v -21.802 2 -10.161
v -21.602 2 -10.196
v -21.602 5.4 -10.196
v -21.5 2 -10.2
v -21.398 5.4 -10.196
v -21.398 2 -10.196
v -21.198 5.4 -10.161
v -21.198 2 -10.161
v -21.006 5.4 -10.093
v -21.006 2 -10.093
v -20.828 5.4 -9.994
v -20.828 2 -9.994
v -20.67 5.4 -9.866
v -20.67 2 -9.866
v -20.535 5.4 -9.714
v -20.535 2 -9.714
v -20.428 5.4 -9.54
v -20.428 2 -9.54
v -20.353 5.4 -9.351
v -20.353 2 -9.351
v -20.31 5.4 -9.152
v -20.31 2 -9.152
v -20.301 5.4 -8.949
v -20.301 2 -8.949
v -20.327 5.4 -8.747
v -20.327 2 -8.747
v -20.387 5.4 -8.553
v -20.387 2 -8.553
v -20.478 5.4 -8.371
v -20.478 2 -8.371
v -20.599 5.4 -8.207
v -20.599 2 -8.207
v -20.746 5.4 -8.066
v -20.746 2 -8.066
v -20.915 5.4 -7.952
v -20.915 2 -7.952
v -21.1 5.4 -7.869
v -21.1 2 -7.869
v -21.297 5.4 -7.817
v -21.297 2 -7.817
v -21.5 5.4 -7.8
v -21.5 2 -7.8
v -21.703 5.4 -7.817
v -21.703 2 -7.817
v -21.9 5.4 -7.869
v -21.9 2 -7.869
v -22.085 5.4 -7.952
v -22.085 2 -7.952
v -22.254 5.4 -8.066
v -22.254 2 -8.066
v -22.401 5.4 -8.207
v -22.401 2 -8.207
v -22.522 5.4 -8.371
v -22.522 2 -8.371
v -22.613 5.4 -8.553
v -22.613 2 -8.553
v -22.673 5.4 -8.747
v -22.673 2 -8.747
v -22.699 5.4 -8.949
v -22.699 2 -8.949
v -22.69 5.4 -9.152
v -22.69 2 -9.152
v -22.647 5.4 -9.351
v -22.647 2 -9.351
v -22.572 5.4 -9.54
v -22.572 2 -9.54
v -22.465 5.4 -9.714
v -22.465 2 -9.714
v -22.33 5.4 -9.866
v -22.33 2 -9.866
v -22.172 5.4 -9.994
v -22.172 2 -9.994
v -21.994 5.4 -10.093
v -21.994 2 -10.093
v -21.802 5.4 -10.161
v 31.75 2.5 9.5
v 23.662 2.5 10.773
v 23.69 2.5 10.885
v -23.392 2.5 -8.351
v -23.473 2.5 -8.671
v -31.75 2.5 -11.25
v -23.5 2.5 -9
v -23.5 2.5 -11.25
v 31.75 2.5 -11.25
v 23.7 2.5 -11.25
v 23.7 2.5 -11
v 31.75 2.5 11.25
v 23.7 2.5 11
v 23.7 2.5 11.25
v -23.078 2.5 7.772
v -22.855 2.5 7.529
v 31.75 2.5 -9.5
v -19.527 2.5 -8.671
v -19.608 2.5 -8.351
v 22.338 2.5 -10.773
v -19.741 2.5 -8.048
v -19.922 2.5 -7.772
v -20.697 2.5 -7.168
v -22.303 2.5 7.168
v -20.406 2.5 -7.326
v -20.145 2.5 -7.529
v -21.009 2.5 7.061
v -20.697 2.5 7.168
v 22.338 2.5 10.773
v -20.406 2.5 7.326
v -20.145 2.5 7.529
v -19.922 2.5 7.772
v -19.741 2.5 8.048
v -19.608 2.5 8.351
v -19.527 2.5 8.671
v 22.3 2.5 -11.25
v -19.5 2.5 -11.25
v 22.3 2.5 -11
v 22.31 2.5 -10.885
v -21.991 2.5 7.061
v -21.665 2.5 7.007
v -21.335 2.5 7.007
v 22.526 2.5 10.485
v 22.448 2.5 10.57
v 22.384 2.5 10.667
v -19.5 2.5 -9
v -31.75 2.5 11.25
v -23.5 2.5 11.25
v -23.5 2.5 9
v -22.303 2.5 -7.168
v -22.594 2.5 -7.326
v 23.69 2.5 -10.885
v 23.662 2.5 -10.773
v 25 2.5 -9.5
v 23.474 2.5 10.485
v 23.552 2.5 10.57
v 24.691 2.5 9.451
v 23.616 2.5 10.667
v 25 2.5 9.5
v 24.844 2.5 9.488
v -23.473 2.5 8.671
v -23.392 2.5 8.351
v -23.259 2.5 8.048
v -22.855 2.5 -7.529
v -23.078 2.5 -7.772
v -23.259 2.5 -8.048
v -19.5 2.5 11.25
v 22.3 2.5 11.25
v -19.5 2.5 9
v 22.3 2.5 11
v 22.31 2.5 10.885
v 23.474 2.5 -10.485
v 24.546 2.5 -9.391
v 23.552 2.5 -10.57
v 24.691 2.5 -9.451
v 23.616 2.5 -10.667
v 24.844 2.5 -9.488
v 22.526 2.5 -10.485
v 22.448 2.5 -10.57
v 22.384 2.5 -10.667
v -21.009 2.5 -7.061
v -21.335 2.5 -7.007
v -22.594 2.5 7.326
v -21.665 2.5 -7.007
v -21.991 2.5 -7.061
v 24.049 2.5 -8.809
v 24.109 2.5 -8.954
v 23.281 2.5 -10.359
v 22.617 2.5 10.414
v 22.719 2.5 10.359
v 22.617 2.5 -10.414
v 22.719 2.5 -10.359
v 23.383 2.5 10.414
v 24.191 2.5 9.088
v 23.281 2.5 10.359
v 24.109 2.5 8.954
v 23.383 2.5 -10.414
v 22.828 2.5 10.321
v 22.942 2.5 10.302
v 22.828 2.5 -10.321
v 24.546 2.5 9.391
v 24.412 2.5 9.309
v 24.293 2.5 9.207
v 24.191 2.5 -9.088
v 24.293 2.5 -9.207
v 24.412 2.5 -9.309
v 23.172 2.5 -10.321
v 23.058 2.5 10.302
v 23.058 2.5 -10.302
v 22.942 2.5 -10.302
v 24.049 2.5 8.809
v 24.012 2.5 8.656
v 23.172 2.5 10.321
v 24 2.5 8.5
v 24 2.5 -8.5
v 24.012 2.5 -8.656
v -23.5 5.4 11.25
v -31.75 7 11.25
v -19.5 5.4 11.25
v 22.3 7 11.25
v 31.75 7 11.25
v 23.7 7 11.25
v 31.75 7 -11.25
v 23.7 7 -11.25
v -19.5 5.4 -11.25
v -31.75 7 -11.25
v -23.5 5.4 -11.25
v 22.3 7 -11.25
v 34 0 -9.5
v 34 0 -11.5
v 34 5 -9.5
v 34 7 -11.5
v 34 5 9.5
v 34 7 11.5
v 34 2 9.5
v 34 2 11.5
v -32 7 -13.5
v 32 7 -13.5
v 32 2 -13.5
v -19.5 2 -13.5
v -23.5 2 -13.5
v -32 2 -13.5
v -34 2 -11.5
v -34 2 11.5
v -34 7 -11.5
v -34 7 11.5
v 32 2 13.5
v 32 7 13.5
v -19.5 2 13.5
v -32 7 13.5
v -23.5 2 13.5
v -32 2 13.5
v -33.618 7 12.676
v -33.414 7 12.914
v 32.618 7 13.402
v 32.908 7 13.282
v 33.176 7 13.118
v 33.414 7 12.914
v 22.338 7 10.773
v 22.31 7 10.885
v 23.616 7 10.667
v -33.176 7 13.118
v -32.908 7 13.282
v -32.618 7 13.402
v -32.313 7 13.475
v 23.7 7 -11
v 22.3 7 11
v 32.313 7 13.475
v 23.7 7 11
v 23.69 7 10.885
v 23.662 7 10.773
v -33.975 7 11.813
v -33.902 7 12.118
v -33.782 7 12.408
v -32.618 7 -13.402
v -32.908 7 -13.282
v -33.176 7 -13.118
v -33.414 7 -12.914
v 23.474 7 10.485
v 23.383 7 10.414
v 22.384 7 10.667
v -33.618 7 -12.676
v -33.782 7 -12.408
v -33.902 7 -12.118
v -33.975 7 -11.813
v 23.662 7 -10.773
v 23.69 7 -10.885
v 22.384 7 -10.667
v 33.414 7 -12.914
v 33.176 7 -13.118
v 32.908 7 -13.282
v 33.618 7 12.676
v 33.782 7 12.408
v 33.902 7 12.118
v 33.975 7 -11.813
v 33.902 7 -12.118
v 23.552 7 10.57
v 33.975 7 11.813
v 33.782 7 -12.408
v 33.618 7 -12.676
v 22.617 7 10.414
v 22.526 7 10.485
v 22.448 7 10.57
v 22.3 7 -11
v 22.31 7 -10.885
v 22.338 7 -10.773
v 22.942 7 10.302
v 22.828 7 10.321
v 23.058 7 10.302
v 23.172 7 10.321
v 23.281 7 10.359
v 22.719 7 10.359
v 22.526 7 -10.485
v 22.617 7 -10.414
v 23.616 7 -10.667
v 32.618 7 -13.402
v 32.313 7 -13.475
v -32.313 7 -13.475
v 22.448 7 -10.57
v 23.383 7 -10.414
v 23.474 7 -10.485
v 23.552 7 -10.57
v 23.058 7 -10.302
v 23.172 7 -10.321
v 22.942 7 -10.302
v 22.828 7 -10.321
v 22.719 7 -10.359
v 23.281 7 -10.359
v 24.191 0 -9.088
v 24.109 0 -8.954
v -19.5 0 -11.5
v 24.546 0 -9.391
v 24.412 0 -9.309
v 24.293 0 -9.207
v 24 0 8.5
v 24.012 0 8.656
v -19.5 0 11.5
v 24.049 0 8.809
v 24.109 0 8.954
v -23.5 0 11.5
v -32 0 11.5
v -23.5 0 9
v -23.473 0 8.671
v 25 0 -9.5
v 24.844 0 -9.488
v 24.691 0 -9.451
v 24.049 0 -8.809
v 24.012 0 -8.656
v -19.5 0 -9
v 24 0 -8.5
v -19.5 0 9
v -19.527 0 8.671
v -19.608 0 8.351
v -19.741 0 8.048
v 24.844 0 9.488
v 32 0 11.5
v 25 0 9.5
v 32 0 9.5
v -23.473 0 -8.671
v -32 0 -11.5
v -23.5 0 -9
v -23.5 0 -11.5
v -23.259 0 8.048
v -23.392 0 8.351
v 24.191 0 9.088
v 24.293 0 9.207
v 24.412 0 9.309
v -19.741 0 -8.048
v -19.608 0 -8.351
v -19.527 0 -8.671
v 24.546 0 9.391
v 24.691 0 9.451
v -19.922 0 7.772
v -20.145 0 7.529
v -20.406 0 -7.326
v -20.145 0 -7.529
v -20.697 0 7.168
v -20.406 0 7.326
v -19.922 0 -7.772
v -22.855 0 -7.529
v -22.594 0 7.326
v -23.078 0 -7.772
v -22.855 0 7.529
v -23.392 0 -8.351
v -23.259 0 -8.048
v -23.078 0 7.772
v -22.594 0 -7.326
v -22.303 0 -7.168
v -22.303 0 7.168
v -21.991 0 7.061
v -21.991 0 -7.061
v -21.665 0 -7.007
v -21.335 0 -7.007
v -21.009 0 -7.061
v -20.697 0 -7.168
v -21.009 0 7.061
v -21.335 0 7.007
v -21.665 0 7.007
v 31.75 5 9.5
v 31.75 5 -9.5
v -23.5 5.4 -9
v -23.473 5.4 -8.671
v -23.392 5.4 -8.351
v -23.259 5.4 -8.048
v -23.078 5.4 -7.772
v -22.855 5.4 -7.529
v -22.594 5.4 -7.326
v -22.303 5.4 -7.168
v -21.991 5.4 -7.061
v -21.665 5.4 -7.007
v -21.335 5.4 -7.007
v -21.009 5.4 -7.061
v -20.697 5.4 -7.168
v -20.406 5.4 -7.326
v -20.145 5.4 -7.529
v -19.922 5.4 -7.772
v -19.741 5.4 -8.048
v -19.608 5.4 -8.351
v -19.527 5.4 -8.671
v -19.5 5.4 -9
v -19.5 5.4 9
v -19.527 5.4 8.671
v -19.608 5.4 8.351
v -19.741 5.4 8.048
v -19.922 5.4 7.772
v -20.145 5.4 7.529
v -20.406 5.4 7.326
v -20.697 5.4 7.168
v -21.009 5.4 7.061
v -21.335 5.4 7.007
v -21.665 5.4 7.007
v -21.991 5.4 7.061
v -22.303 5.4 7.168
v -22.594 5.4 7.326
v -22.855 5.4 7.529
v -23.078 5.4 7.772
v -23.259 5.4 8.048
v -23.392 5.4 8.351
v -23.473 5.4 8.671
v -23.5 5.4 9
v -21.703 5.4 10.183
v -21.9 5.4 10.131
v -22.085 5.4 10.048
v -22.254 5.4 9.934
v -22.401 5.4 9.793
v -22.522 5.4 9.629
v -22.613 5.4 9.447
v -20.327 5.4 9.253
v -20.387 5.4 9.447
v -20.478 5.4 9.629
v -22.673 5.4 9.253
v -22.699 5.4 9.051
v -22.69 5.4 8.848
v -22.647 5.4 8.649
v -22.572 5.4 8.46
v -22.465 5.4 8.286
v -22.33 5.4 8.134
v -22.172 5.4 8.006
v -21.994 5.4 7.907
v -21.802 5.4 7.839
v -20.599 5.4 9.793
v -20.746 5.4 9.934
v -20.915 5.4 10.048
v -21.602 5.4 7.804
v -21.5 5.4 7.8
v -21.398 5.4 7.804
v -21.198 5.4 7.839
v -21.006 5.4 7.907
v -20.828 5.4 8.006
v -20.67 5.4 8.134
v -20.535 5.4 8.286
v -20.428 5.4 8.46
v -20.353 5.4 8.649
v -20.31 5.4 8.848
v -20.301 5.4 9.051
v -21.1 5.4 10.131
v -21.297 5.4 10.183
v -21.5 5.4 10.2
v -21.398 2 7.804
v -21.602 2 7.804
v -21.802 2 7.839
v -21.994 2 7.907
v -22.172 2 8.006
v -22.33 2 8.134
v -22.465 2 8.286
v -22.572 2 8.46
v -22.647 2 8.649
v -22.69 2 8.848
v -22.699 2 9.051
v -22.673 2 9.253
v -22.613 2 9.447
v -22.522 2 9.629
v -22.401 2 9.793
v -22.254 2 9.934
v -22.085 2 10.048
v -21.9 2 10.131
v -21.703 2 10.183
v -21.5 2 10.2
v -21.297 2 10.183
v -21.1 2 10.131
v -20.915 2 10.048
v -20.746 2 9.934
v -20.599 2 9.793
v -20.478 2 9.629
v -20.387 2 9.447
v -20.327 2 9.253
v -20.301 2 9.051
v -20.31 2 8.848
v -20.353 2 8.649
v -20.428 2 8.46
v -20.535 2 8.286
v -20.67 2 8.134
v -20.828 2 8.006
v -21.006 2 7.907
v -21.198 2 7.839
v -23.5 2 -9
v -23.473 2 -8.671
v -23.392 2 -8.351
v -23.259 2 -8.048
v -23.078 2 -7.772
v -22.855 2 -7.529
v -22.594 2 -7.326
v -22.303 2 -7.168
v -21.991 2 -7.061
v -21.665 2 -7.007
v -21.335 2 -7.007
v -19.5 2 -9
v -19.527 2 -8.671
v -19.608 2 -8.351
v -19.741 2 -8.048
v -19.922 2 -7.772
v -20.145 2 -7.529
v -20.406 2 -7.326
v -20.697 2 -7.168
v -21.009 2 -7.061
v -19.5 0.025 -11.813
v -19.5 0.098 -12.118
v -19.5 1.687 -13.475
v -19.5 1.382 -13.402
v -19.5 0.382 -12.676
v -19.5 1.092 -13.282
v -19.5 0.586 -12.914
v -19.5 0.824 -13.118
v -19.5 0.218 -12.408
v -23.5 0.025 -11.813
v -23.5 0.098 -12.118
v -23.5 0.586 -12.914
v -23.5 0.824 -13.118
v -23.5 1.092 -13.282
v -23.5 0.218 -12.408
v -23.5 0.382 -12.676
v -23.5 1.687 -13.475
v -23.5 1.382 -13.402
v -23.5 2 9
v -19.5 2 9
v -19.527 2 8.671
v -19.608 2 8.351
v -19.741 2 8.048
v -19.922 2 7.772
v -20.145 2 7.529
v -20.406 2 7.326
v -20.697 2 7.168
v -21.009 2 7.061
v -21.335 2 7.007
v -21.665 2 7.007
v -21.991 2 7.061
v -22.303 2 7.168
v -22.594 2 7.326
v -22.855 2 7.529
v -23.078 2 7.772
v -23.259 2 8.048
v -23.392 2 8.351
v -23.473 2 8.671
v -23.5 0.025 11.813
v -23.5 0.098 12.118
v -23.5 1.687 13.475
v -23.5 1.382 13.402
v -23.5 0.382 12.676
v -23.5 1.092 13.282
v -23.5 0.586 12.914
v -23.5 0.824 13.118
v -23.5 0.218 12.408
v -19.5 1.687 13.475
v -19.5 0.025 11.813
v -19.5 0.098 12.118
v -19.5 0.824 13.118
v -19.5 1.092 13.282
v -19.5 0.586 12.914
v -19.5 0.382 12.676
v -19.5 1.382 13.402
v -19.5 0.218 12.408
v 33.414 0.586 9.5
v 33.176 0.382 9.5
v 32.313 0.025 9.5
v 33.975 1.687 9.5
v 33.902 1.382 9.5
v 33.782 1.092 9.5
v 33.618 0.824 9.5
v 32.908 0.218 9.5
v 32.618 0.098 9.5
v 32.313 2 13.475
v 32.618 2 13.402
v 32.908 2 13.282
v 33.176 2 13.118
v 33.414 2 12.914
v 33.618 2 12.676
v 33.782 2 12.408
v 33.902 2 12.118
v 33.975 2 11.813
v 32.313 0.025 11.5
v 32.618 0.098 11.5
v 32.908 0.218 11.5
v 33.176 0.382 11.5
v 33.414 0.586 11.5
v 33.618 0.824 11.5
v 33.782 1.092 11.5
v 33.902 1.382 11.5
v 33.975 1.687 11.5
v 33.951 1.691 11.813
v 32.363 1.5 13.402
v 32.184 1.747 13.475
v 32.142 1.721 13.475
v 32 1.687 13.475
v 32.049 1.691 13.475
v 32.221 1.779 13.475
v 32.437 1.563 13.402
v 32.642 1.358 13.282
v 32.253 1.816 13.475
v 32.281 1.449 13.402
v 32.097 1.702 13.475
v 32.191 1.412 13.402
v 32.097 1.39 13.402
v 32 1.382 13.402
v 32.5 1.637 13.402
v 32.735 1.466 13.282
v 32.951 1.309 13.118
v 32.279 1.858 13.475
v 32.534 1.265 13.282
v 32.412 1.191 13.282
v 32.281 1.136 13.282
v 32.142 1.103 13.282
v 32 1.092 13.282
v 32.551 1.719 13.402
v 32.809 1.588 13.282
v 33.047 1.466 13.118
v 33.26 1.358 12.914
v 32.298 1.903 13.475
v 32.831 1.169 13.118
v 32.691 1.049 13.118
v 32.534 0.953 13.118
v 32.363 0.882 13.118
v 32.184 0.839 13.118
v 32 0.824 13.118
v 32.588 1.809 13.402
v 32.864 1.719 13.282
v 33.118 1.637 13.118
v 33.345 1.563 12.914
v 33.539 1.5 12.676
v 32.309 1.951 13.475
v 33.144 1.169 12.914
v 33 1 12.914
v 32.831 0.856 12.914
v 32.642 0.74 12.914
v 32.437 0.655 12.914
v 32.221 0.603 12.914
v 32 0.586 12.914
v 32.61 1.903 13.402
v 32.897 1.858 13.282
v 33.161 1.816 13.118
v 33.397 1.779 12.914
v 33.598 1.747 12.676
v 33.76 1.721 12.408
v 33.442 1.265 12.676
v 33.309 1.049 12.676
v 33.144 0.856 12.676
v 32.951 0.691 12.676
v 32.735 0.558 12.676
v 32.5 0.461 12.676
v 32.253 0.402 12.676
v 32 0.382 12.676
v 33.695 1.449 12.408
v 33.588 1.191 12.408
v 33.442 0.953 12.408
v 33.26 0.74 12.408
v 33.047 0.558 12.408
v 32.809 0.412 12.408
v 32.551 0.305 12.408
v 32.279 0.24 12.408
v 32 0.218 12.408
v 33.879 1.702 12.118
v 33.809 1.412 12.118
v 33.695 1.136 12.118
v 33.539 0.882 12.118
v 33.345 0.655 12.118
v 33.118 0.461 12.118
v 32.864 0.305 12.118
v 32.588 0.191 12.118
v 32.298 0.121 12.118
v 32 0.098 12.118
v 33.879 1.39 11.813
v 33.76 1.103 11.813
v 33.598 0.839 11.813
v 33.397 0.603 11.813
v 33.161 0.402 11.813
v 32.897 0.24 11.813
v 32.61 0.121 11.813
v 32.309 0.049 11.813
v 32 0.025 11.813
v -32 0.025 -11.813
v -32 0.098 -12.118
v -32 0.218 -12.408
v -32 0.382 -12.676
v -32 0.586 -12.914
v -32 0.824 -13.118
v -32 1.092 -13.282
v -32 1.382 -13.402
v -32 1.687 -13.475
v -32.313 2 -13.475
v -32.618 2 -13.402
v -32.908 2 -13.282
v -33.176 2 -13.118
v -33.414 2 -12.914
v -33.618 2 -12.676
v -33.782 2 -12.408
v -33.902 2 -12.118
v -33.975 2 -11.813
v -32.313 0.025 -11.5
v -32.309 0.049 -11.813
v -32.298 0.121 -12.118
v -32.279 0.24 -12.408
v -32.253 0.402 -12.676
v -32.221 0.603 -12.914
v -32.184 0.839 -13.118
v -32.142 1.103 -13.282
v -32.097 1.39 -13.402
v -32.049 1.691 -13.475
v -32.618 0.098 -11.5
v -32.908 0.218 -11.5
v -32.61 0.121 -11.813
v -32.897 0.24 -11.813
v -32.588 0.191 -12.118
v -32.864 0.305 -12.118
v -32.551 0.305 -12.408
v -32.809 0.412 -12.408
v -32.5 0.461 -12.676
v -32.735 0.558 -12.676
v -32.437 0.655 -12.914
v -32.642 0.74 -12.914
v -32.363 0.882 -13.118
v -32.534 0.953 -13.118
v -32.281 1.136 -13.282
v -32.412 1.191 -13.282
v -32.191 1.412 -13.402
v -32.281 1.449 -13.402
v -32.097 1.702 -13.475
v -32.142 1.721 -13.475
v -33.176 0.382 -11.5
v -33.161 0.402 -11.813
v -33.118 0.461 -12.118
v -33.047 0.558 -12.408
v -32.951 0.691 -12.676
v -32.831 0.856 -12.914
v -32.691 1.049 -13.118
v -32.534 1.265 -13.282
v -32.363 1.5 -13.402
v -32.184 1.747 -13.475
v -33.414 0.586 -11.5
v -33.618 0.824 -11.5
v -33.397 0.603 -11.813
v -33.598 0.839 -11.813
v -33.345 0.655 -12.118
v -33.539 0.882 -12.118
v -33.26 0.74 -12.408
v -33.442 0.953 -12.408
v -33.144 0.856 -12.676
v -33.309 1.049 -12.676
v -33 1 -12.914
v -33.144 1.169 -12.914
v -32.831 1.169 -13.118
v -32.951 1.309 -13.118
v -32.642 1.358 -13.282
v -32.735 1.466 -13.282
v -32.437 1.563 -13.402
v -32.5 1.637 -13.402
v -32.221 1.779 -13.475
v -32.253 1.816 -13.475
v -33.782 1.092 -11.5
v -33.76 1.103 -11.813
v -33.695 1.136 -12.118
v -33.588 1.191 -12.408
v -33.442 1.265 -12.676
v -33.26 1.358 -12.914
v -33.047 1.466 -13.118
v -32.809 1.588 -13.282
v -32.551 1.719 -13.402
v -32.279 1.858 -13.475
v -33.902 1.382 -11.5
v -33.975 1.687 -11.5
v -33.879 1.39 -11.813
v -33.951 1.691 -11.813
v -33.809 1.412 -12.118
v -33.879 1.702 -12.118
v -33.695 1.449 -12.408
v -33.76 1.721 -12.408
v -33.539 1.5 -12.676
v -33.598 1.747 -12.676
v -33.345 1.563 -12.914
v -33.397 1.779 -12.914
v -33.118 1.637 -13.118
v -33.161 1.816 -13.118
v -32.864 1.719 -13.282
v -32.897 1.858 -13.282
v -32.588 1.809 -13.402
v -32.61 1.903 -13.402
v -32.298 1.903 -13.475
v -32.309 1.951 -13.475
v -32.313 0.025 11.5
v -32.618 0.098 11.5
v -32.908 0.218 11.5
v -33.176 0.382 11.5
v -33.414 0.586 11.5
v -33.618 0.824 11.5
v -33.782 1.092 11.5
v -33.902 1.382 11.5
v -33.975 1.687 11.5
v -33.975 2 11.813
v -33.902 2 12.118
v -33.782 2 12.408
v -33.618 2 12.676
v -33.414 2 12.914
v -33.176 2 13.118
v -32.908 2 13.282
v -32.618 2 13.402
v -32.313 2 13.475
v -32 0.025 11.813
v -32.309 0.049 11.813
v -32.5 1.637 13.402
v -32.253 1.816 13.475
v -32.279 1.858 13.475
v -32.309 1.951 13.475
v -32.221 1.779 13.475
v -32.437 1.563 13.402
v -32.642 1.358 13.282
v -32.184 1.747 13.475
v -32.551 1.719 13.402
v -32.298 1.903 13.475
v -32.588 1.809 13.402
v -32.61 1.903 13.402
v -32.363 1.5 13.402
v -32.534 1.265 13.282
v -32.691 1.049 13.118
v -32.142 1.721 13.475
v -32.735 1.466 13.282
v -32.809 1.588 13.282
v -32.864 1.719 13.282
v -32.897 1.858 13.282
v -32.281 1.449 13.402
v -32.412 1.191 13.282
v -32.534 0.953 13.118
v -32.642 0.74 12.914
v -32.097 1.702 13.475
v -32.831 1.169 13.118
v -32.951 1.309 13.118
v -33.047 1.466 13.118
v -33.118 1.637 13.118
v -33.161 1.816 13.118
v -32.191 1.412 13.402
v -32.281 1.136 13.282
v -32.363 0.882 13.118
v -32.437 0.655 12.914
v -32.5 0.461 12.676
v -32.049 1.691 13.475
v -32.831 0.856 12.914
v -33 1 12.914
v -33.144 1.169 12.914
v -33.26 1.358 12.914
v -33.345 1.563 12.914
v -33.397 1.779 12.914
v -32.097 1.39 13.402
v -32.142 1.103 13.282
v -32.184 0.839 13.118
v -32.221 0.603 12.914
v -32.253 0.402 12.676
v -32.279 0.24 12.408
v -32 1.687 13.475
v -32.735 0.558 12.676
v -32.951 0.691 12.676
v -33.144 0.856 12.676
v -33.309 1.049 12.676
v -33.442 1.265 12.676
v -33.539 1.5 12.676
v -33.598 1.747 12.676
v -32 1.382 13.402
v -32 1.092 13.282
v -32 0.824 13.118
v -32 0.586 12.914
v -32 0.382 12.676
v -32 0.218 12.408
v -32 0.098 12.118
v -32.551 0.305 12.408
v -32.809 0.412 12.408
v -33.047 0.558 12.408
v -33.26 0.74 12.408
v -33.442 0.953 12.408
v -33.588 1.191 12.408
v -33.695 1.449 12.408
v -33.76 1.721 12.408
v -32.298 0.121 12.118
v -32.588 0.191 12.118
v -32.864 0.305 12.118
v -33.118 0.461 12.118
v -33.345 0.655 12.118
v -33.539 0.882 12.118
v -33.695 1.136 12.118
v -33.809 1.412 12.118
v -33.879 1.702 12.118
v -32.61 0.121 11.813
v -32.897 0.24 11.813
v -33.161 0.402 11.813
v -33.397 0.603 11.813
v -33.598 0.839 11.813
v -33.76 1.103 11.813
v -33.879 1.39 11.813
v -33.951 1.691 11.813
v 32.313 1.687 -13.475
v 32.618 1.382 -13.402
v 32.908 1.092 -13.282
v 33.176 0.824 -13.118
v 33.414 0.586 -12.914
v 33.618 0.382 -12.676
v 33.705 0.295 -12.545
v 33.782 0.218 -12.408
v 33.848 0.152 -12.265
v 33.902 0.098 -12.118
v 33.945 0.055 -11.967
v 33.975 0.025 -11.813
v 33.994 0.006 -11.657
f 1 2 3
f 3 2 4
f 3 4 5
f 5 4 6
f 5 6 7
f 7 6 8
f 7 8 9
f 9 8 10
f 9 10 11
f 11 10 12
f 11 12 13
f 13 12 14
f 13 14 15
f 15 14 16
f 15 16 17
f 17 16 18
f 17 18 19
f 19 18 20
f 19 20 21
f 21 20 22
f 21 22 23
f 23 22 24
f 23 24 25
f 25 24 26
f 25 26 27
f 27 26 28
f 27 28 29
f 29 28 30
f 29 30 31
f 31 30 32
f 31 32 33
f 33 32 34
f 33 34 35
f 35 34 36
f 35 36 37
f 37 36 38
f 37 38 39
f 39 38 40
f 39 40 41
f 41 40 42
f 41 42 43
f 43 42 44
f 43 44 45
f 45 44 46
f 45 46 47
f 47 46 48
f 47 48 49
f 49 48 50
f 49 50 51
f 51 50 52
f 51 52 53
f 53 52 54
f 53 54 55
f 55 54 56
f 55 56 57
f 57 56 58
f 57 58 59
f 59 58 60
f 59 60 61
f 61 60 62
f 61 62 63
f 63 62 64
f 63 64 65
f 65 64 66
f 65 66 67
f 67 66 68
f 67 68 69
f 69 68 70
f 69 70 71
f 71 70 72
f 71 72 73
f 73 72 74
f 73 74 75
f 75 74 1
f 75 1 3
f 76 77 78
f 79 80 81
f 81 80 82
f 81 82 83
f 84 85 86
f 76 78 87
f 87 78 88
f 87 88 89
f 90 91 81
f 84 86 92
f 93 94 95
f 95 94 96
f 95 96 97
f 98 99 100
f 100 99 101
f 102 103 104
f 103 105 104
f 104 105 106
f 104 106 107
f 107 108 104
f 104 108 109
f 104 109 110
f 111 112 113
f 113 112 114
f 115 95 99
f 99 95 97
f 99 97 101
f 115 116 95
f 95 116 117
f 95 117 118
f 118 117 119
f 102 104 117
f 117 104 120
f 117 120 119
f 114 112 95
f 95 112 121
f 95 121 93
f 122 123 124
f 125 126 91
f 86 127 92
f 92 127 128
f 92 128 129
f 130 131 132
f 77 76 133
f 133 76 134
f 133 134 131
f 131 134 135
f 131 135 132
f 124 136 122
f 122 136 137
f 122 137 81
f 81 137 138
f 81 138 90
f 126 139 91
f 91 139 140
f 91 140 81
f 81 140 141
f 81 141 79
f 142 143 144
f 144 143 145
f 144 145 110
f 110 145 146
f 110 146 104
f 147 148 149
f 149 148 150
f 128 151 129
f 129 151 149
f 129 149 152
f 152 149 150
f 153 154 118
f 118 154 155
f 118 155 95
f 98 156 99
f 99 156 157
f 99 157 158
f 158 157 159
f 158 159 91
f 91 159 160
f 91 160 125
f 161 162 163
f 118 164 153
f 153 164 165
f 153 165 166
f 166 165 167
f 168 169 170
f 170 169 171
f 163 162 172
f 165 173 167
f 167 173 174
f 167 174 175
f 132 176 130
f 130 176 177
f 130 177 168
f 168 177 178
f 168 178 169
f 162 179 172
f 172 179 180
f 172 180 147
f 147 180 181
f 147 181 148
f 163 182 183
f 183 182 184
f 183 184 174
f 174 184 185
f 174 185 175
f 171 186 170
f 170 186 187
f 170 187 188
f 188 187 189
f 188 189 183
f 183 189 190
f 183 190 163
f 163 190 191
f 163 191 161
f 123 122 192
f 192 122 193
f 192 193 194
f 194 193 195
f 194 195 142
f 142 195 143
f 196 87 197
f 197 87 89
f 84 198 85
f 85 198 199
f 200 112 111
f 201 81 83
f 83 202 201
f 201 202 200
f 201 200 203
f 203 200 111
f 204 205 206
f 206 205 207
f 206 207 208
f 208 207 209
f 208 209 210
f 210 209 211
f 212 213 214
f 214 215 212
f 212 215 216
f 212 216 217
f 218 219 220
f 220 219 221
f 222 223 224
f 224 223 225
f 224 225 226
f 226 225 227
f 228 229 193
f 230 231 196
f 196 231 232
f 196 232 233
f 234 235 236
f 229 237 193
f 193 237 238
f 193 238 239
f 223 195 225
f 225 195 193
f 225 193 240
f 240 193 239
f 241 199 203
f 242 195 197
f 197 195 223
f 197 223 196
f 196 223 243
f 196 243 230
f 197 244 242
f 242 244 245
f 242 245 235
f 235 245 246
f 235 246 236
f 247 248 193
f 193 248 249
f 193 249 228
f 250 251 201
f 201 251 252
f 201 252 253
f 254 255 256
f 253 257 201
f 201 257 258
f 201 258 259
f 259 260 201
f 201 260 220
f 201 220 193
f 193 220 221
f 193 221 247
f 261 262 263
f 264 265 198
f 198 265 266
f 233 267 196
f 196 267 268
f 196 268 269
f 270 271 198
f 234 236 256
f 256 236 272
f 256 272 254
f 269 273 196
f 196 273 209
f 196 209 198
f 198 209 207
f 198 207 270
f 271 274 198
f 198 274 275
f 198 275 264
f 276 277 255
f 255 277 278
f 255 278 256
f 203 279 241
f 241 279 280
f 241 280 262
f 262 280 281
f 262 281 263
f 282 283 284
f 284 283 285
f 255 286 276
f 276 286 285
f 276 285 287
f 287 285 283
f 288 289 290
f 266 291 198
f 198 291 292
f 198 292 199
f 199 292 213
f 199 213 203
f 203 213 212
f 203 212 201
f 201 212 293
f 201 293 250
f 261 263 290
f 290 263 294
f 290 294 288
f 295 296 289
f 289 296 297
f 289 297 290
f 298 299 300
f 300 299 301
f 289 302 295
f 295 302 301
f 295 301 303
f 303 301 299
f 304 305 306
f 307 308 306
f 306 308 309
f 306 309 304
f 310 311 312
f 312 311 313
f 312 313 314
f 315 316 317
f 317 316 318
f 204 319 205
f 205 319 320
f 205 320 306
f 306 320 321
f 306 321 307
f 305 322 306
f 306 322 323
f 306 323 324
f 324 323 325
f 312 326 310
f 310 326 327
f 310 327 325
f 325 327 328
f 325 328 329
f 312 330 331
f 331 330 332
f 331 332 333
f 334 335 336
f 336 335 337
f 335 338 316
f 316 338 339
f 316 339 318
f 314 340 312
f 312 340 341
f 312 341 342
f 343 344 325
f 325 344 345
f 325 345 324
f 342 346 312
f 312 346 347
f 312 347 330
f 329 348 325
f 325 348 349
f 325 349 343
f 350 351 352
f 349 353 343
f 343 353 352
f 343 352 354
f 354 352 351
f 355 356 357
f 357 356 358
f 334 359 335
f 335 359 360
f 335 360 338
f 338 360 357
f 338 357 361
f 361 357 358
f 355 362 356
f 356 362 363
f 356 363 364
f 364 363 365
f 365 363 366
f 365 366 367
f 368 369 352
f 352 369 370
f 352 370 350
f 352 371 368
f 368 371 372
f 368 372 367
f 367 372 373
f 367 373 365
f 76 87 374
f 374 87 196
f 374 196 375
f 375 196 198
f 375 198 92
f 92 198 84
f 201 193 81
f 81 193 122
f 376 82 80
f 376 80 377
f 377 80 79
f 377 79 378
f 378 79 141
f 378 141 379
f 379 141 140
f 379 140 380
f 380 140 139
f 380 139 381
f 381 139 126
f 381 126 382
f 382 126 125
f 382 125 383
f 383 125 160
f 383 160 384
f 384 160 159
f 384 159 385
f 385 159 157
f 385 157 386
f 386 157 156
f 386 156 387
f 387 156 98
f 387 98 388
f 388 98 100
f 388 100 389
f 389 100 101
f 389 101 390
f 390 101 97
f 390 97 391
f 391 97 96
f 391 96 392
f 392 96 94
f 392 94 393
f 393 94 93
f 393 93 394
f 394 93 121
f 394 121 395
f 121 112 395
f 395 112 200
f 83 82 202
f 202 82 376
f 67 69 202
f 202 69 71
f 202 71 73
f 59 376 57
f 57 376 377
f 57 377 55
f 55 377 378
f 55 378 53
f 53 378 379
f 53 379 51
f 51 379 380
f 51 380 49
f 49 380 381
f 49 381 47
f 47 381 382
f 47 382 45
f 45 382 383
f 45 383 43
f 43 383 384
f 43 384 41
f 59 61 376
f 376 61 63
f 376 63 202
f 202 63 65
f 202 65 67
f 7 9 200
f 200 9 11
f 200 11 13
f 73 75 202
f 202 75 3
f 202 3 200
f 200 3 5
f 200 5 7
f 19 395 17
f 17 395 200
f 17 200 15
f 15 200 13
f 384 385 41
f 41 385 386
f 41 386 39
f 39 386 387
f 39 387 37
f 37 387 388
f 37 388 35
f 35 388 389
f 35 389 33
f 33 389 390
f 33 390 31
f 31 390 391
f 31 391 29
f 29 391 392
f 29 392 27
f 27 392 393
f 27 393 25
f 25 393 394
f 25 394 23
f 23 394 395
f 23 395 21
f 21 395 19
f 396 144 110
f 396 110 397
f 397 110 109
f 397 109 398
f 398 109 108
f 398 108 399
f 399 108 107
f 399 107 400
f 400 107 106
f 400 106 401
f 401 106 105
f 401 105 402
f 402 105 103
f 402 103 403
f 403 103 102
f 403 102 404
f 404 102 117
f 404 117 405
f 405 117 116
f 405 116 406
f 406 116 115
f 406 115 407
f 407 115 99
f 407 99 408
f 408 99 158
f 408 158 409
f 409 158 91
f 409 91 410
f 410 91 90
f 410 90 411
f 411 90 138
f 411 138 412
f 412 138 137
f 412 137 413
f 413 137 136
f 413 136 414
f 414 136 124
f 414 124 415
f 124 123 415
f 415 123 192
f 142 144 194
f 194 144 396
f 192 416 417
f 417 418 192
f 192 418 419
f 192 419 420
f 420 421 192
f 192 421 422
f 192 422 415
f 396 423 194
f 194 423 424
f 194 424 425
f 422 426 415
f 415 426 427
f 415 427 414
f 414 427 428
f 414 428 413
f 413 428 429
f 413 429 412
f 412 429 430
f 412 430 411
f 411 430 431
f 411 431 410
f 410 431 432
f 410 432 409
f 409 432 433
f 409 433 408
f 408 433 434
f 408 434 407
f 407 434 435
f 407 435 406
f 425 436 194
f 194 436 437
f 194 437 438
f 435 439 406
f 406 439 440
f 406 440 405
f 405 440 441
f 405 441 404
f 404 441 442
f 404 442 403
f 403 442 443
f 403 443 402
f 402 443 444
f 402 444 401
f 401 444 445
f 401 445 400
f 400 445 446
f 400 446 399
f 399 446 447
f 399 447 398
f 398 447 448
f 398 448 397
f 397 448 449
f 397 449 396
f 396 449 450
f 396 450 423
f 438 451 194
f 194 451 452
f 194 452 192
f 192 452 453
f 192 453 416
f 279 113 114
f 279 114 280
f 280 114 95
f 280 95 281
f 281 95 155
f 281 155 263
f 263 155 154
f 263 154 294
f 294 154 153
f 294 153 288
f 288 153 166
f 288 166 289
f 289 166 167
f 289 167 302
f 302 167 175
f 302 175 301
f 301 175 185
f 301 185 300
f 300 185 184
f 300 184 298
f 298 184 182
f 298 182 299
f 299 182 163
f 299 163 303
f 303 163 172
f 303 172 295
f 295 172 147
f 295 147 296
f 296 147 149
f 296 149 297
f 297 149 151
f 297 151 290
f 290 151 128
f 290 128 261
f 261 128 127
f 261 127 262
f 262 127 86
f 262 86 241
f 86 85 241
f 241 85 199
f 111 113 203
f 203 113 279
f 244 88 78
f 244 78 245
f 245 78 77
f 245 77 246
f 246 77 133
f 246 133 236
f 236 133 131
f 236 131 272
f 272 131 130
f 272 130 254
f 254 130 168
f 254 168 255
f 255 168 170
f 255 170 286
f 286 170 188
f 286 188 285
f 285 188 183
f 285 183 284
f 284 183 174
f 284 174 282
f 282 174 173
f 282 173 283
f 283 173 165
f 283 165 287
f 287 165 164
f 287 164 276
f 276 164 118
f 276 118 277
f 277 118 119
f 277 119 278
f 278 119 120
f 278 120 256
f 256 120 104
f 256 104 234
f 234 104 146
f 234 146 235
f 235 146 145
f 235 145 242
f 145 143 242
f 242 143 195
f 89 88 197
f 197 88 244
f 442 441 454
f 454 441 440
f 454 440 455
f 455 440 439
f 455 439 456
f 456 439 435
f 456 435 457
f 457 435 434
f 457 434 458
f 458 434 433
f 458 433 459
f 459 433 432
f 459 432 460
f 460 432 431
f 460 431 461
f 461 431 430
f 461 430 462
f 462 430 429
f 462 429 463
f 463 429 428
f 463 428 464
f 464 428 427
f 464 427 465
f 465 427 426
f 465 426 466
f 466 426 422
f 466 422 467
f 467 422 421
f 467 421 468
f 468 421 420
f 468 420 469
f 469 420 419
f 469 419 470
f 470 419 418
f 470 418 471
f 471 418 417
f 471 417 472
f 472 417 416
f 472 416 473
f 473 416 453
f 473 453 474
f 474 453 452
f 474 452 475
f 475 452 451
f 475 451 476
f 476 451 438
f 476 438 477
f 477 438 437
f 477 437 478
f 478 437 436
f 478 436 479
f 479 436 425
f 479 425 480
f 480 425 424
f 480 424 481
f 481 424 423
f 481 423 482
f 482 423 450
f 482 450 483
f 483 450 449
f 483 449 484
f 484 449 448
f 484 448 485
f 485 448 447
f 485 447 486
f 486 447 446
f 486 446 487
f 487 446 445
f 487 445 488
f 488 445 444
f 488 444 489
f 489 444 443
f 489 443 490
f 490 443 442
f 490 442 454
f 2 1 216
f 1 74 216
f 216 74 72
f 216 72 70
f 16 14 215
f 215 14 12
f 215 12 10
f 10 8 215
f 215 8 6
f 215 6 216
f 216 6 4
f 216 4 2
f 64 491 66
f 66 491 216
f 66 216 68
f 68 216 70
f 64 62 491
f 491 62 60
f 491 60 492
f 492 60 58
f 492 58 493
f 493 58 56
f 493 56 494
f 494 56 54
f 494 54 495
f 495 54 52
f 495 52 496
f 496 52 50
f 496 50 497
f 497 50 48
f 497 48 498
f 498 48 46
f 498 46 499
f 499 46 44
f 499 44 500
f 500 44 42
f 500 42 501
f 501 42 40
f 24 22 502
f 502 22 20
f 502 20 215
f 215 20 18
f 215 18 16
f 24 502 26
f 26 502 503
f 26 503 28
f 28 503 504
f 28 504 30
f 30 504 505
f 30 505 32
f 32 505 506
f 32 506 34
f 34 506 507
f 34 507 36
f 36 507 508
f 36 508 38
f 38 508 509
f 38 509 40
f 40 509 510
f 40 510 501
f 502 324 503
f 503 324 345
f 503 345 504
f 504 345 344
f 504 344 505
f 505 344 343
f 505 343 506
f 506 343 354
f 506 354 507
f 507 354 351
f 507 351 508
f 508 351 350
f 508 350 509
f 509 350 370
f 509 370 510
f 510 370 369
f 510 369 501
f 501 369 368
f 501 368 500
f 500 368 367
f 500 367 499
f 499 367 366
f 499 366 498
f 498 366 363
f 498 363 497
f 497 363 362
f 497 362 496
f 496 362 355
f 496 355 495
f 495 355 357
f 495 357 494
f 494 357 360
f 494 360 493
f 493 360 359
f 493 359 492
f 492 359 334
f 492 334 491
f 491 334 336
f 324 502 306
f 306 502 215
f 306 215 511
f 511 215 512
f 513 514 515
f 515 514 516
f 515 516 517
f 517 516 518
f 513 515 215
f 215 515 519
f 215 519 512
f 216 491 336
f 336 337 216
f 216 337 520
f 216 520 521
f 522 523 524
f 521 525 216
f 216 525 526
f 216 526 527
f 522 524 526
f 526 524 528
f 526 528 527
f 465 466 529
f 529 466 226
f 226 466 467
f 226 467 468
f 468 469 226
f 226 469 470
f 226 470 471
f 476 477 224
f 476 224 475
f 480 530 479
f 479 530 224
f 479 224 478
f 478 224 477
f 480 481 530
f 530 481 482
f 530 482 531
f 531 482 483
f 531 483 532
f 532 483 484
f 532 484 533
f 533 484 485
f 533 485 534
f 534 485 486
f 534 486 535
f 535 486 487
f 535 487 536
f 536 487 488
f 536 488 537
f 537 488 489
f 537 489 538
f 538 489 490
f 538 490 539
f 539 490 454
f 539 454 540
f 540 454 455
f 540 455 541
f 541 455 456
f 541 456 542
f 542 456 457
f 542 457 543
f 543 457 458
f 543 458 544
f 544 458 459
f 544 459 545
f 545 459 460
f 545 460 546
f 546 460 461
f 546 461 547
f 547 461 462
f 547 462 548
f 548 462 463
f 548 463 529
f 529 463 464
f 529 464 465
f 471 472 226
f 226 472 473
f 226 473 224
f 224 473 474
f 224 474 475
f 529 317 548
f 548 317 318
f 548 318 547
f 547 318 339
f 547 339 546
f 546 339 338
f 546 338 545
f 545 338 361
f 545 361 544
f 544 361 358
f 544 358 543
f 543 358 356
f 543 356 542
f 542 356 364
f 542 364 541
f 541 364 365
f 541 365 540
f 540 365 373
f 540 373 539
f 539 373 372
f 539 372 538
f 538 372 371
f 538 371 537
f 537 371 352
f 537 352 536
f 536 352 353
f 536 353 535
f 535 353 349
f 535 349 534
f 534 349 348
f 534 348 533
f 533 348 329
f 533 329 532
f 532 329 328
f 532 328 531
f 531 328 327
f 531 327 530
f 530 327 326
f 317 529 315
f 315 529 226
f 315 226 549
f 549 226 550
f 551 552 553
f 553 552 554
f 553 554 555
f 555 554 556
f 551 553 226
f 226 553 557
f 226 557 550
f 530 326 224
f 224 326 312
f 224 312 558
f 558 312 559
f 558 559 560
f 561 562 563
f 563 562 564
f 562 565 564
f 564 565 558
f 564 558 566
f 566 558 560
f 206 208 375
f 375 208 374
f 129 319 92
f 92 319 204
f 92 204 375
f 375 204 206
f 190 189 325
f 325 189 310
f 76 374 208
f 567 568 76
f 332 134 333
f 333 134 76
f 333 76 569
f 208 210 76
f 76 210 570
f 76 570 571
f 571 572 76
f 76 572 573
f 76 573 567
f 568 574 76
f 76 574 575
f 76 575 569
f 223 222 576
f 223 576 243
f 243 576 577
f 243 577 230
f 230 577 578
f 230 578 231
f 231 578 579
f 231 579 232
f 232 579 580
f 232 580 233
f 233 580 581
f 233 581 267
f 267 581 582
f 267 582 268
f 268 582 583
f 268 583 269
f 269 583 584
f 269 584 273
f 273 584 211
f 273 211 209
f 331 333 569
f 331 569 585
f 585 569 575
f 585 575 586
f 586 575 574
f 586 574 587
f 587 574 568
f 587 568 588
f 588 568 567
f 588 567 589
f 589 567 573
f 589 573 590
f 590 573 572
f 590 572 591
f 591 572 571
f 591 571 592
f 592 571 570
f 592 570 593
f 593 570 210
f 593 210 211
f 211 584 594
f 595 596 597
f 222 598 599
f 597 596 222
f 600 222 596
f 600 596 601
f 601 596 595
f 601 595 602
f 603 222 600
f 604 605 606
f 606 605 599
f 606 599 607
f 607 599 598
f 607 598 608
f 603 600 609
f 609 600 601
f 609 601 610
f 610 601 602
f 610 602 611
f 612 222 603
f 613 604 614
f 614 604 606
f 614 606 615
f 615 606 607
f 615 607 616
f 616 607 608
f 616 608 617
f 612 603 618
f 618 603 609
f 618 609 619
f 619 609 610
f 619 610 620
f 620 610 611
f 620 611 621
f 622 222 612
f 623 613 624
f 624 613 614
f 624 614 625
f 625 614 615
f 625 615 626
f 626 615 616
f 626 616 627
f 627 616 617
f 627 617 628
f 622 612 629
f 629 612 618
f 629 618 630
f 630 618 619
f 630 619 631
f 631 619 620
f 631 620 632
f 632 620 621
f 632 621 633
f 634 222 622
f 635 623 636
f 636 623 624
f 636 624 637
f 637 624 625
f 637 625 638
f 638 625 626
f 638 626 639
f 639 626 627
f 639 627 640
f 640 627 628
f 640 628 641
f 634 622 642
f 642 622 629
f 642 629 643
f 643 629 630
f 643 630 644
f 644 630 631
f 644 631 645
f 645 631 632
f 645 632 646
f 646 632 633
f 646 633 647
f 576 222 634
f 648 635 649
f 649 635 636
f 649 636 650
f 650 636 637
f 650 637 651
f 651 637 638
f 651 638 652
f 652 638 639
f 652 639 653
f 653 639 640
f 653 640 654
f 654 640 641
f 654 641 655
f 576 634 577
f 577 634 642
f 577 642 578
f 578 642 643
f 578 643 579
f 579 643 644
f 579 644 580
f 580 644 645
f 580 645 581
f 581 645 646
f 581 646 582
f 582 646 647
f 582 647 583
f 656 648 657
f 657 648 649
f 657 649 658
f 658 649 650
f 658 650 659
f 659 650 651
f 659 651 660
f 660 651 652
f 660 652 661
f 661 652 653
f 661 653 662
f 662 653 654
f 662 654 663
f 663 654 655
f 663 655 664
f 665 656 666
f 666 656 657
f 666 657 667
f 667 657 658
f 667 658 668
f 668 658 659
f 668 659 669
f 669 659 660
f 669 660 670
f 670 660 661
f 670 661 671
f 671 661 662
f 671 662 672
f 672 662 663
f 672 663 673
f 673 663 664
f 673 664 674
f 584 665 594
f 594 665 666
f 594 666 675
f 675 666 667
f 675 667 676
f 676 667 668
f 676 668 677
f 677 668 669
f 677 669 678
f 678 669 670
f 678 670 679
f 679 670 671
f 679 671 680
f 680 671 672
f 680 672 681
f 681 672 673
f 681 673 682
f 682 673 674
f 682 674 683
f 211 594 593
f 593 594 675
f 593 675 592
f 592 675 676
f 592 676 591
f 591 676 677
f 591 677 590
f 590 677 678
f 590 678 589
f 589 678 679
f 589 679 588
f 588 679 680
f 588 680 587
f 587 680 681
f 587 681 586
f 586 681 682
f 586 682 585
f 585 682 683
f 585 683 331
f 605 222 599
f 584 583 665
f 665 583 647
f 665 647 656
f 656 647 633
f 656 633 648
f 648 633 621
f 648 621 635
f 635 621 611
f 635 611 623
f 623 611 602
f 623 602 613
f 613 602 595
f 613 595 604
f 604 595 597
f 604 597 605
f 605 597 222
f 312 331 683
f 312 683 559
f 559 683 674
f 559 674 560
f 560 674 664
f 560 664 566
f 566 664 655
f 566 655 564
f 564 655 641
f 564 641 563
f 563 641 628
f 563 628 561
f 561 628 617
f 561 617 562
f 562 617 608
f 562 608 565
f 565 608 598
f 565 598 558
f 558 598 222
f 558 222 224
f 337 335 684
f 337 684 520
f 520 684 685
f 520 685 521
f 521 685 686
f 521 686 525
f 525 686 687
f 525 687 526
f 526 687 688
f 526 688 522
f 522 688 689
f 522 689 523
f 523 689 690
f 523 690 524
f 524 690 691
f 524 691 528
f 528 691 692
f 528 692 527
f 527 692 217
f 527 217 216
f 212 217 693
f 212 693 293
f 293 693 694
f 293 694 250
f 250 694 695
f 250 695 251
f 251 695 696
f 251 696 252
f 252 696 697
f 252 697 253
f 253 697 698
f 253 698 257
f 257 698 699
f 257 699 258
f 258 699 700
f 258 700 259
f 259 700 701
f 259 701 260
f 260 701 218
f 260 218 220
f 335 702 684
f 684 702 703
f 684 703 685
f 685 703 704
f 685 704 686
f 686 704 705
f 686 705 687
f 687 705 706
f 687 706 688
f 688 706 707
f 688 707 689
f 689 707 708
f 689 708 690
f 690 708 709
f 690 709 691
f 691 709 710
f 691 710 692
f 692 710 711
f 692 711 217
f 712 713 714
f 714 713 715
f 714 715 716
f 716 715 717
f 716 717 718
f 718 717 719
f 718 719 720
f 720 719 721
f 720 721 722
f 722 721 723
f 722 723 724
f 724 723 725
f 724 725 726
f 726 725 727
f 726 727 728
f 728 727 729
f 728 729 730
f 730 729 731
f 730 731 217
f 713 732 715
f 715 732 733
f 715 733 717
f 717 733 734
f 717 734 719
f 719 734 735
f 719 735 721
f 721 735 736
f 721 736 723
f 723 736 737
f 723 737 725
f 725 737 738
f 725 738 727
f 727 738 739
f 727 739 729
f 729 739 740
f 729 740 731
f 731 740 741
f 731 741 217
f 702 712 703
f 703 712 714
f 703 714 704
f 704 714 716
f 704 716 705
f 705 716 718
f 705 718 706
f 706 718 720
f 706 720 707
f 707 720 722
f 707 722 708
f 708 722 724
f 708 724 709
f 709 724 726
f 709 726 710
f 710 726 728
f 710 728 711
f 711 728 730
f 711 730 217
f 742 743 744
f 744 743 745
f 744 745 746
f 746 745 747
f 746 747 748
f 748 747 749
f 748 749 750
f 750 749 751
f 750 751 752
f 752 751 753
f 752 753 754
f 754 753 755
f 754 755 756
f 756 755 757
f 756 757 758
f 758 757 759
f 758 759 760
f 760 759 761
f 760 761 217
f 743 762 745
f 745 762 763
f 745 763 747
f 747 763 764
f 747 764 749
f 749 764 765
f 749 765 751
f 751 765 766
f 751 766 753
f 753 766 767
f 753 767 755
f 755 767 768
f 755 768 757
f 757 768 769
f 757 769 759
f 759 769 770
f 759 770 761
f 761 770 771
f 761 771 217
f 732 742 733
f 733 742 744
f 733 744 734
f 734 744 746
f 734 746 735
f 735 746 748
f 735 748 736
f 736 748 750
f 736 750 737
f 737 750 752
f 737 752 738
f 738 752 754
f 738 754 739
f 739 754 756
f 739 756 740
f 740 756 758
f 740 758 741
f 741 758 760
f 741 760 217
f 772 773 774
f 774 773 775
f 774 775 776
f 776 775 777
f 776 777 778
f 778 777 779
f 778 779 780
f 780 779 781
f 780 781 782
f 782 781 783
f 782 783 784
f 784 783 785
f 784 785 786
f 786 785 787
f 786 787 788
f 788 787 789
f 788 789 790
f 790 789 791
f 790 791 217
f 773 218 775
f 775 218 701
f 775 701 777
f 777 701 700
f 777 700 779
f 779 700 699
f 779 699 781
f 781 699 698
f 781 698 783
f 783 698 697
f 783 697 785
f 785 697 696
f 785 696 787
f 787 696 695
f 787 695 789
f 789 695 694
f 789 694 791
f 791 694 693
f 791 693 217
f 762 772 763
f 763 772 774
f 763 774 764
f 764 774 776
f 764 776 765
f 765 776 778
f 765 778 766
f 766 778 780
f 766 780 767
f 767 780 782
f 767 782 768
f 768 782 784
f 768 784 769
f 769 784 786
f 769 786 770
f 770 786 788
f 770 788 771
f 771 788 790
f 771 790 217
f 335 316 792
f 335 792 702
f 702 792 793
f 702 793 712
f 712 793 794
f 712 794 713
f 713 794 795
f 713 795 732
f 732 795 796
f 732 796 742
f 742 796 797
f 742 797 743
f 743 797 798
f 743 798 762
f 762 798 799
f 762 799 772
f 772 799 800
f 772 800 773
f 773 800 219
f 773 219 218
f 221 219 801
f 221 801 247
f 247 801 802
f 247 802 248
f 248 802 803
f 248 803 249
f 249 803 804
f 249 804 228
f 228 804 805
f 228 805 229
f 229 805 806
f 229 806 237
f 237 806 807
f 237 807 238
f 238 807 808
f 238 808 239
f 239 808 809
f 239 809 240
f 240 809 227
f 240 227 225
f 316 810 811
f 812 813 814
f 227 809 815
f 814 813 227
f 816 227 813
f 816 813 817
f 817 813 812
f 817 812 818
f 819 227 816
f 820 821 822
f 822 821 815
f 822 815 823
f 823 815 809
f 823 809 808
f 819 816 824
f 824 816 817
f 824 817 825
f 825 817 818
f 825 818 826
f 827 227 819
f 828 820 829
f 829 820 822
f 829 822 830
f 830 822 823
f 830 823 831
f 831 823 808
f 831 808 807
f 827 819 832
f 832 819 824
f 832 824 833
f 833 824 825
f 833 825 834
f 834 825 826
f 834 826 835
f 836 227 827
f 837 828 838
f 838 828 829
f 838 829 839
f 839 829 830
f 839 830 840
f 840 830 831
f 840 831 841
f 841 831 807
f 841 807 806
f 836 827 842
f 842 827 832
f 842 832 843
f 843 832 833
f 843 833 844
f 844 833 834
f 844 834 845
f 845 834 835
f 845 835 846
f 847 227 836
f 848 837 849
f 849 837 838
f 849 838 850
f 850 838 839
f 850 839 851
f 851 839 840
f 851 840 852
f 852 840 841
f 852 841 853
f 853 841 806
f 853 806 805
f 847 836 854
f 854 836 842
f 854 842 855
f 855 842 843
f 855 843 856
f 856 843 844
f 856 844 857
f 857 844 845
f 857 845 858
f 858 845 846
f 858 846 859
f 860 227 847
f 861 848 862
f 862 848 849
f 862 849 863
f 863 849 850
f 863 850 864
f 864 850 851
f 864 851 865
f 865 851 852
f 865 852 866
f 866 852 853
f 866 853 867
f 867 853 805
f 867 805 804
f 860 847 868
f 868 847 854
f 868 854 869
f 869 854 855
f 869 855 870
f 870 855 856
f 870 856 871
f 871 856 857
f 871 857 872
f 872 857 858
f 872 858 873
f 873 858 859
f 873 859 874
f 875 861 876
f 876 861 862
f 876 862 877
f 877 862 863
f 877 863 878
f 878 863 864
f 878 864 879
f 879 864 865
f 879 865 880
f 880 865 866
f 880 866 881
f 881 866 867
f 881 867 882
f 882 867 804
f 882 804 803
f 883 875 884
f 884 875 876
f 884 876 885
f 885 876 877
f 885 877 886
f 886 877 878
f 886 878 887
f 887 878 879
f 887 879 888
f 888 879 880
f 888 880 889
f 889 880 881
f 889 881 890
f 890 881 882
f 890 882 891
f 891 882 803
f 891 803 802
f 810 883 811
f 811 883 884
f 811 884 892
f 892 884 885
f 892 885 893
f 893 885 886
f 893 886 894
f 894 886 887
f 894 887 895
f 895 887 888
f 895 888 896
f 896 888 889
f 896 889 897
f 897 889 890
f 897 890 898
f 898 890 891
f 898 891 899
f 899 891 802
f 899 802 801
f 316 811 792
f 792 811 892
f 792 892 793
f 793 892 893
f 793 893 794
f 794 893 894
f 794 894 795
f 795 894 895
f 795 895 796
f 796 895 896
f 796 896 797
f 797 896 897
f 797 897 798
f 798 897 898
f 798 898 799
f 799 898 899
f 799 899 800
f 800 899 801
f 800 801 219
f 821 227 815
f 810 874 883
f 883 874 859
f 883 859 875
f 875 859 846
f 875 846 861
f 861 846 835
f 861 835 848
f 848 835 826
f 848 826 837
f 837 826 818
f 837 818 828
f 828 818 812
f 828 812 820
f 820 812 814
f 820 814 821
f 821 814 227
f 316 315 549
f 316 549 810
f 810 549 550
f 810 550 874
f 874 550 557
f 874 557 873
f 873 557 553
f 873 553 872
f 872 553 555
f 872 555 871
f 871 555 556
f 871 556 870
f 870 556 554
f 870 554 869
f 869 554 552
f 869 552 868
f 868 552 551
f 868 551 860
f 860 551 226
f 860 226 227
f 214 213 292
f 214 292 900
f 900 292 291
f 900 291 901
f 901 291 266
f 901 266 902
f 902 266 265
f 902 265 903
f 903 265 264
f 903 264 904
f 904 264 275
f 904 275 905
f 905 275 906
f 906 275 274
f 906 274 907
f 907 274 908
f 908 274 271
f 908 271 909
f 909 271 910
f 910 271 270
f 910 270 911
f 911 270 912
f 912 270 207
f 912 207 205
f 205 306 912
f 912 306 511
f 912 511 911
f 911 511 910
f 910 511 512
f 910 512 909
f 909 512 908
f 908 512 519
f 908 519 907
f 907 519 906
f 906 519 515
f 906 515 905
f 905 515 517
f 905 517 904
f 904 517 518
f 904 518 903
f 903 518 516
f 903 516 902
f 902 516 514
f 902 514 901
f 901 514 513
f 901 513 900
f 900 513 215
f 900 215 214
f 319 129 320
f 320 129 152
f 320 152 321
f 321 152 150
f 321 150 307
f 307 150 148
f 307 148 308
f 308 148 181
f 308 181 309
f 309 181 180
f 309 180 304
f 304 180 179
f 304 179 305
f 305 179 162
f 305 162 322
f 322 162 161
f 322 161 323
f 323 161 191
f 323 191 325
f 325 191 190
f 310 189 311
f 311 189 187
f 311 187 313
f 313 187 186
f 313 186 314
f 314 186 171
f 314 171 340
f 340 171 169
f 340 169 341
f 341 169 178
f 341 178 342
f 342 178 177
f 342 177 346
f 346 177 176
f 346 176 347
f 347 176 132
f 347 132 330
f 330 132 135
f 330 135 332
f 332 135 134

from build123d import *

# Parameters (mm, degrees)
SKETCH_1_W          = 68
SKETCH_1_H          = 27
EXTRUDE_1_DEPTH     = 7
SKETCH_2_W          = 63.5
SKETCH_2_H          = 22.5
CUT_EXTRUDE_1_DEPTH = 4.5
EXTRUDE_2_DEPTH     = 2.9
EXTRUDE_3_DEPTH     = 4.5
SKETCH_5_R          = 1.2
CUT_EXTRUDE_2_DEPTH = 37.978507271
CUT_EXTRUDE_3_DEPTH = 2
SKETCH_7_W          = 10
SKETCH_7_H          = 19
CUT_EXTRUDE_4_DEPTH = 5
FILLET_1_R          = 2
FILLET_2_R          = 1


with BuildPart() as part:
    # Эскиз1 → Бобышка-Вытянуть1 (new body)
    with BuildSketch(Plane(origin=(0, 0, 0), x_dir=(1, 0, 0), z_dir=(0, 1, 0))):
        Rectangle(SKETCH_1_W, SKETCH_1_H)
    extrude(amount=EXTRUDE_1_DEPTH)

    # Эскиз2 → Вырез-Вытянуть1 (cut)
    with BuildSketch(Plane(origin=(0, 7, 0), x_dir=(1, 0, 0), z_dir=(0, 1, 0))):
        Rectangle(SKETCH_2_W, SKETCH_2_H)
    extrude(amount=-CUT_EXTRUDE_1_DEPTH, mode=Mode.SUBTRACT)

    # Эскиз3 → Бобышка-Вытянуть2 (add)
    with BuildSketch(Plane(origin=(0, 2.5, 0), x_dir=(1, 0, 0), z_dir=(0, 1, 0))):
        with BuildLine():
            Line((-23.5, 9), (-23.5, 11.25))
            Line((-23.5, 11.25), (-19.5, 11.25))
            Line((-19.5, 11.25), (-19.5, 9))
            ThreePointArc((-19.5, 9), (-21.5, 7), (-23.5, 9))
        make_face()
        with BuildLine():
            Line((-19.5, -11.25), (-19.5, -9))
            ThreePointArc((-19.5, -9), (-21.5, -7), (-23.5, -9))
            Line((-23.5, -9), (-23.5, -11.25))
            Line((-23.5, -11.25), (-19.5, -11.25))
        make_face()
    extrude(amount=EXTRUDE_2_DEPTH)

    # Эскиз4 → Бобышка-Вытянуть3 (add)
    with BuildSketch(Plane(origin=(0, 2.5, 0), x_dir=(1, 0, 0), z_dir=(0, 1, 0))):
        with BuildLine():
            Line((22.3, 11), (22.3, 11.25))
            Line((22.3, 11.25), (23.7, 11.25))
            Line((23.7, 11.25), (23.7, 11))
            ThreePointArc((23.7, 11), (23, 10.3), (22.3, 11))
        make_face()
        with BuildLine():
            Line((23.7, -11.25), (23.7, -11))
            ThreePointArc((23.7, -11), (23, -10.3), (22.3, -11))
            Line((22.3, -11), (22.3, -11.25))
            Line((22.3, -11.25), (23.7, -11.25))
        make_face()
    extrude(amount=EXTRUDE_3_DEPTH)

    # Эскиз5 → Вырез-Вытянуть2 (cut, through all)
    with BuildSketch(Plane(origin=(0, 5.4, 0), x_dir=(1, 0, 0), z_dir=(0, 1, 0))):
        with Locations(Location((-21.5, 9, 0), (0, 0, 270))):
            Circle(SKETCH_5_R)
        with Locations(Location((-21.5, -9, 0), (0, 0, 270))):
            Circle(SKETCH_5_R)
    extrude(amount=-CUT_EXTRUDE_2_DEPTH, mode=Mode.SUBTRACT)

    # Эскиз6 → Вырез-Вытянуть3 (cut)
    with BuildSketch(Plane.XZ):
        with BuildLine():
            Line((-19.5, -9), (-19.5, -13.5))
            Line((-19.5, -13.5), (-23.5, -13.5))
            Line((-23.5, -13.5), (-23.5, -9))
            ThreePointArc((-23.5, -9), (-21.5, -7), (-19.5, -9))
        make_face()
        with BuildLine():
            Line((-23.5, 13.5), (-23.5, 9))
            ThreePointArc((-23.5, 9), (-21.5, 7), (-19.5, 9))
            Line((-19.5, 9), (-19.5, 13.5))
            Line((-19.5, 13.5), (-23.5, 13.5))
        make_face()
    extrude(amount=-CUT_EXTRUDE_3_DEPTH, mode=Mode.SUBTRACT)

    # Эскиз7 → Вырез-Вытянуть4 (cut)
    with BuildSketch(Plane.XZ):
        with Locations((29, 0)):
            Rectangle(SKETCH_7_W, SKETCH_7_H)
    extrude(amount=-CUT_EXTRUDE_4_DEPTH, mode=Mode.SUBTRACT)

    # Скругление1
    fillet_1_edges = [part.edges().sort_by_distance(p)[0] for p in [
        (-28.75, 0, -13.5),
        (7.25, 0, -13.5),
        (34, 3.5, -13.5),
        (-34, 3.5, -13.5),
        (-28.75, 0, 13.5),
        (7.25, 0, 13.5),
        (34, 0, 11.5),
        (-34, 0, 0),
        (34, 3.5, 13.5),
        (-34, 3.5, 13.5),
    ]]
    fillet(fillet_1_edges, radius=FILLET_1_R)

    # Скругление2
    fillet_2_edges = [part.edges().sort_by_distance(p)[0] for p in [
        (24, 1.25, -9.5),
        (24, 1.25, 9.5),
    ]]
    fillet(fillet_2_edges, radius=FILLET_2_R)


solid = part.part
